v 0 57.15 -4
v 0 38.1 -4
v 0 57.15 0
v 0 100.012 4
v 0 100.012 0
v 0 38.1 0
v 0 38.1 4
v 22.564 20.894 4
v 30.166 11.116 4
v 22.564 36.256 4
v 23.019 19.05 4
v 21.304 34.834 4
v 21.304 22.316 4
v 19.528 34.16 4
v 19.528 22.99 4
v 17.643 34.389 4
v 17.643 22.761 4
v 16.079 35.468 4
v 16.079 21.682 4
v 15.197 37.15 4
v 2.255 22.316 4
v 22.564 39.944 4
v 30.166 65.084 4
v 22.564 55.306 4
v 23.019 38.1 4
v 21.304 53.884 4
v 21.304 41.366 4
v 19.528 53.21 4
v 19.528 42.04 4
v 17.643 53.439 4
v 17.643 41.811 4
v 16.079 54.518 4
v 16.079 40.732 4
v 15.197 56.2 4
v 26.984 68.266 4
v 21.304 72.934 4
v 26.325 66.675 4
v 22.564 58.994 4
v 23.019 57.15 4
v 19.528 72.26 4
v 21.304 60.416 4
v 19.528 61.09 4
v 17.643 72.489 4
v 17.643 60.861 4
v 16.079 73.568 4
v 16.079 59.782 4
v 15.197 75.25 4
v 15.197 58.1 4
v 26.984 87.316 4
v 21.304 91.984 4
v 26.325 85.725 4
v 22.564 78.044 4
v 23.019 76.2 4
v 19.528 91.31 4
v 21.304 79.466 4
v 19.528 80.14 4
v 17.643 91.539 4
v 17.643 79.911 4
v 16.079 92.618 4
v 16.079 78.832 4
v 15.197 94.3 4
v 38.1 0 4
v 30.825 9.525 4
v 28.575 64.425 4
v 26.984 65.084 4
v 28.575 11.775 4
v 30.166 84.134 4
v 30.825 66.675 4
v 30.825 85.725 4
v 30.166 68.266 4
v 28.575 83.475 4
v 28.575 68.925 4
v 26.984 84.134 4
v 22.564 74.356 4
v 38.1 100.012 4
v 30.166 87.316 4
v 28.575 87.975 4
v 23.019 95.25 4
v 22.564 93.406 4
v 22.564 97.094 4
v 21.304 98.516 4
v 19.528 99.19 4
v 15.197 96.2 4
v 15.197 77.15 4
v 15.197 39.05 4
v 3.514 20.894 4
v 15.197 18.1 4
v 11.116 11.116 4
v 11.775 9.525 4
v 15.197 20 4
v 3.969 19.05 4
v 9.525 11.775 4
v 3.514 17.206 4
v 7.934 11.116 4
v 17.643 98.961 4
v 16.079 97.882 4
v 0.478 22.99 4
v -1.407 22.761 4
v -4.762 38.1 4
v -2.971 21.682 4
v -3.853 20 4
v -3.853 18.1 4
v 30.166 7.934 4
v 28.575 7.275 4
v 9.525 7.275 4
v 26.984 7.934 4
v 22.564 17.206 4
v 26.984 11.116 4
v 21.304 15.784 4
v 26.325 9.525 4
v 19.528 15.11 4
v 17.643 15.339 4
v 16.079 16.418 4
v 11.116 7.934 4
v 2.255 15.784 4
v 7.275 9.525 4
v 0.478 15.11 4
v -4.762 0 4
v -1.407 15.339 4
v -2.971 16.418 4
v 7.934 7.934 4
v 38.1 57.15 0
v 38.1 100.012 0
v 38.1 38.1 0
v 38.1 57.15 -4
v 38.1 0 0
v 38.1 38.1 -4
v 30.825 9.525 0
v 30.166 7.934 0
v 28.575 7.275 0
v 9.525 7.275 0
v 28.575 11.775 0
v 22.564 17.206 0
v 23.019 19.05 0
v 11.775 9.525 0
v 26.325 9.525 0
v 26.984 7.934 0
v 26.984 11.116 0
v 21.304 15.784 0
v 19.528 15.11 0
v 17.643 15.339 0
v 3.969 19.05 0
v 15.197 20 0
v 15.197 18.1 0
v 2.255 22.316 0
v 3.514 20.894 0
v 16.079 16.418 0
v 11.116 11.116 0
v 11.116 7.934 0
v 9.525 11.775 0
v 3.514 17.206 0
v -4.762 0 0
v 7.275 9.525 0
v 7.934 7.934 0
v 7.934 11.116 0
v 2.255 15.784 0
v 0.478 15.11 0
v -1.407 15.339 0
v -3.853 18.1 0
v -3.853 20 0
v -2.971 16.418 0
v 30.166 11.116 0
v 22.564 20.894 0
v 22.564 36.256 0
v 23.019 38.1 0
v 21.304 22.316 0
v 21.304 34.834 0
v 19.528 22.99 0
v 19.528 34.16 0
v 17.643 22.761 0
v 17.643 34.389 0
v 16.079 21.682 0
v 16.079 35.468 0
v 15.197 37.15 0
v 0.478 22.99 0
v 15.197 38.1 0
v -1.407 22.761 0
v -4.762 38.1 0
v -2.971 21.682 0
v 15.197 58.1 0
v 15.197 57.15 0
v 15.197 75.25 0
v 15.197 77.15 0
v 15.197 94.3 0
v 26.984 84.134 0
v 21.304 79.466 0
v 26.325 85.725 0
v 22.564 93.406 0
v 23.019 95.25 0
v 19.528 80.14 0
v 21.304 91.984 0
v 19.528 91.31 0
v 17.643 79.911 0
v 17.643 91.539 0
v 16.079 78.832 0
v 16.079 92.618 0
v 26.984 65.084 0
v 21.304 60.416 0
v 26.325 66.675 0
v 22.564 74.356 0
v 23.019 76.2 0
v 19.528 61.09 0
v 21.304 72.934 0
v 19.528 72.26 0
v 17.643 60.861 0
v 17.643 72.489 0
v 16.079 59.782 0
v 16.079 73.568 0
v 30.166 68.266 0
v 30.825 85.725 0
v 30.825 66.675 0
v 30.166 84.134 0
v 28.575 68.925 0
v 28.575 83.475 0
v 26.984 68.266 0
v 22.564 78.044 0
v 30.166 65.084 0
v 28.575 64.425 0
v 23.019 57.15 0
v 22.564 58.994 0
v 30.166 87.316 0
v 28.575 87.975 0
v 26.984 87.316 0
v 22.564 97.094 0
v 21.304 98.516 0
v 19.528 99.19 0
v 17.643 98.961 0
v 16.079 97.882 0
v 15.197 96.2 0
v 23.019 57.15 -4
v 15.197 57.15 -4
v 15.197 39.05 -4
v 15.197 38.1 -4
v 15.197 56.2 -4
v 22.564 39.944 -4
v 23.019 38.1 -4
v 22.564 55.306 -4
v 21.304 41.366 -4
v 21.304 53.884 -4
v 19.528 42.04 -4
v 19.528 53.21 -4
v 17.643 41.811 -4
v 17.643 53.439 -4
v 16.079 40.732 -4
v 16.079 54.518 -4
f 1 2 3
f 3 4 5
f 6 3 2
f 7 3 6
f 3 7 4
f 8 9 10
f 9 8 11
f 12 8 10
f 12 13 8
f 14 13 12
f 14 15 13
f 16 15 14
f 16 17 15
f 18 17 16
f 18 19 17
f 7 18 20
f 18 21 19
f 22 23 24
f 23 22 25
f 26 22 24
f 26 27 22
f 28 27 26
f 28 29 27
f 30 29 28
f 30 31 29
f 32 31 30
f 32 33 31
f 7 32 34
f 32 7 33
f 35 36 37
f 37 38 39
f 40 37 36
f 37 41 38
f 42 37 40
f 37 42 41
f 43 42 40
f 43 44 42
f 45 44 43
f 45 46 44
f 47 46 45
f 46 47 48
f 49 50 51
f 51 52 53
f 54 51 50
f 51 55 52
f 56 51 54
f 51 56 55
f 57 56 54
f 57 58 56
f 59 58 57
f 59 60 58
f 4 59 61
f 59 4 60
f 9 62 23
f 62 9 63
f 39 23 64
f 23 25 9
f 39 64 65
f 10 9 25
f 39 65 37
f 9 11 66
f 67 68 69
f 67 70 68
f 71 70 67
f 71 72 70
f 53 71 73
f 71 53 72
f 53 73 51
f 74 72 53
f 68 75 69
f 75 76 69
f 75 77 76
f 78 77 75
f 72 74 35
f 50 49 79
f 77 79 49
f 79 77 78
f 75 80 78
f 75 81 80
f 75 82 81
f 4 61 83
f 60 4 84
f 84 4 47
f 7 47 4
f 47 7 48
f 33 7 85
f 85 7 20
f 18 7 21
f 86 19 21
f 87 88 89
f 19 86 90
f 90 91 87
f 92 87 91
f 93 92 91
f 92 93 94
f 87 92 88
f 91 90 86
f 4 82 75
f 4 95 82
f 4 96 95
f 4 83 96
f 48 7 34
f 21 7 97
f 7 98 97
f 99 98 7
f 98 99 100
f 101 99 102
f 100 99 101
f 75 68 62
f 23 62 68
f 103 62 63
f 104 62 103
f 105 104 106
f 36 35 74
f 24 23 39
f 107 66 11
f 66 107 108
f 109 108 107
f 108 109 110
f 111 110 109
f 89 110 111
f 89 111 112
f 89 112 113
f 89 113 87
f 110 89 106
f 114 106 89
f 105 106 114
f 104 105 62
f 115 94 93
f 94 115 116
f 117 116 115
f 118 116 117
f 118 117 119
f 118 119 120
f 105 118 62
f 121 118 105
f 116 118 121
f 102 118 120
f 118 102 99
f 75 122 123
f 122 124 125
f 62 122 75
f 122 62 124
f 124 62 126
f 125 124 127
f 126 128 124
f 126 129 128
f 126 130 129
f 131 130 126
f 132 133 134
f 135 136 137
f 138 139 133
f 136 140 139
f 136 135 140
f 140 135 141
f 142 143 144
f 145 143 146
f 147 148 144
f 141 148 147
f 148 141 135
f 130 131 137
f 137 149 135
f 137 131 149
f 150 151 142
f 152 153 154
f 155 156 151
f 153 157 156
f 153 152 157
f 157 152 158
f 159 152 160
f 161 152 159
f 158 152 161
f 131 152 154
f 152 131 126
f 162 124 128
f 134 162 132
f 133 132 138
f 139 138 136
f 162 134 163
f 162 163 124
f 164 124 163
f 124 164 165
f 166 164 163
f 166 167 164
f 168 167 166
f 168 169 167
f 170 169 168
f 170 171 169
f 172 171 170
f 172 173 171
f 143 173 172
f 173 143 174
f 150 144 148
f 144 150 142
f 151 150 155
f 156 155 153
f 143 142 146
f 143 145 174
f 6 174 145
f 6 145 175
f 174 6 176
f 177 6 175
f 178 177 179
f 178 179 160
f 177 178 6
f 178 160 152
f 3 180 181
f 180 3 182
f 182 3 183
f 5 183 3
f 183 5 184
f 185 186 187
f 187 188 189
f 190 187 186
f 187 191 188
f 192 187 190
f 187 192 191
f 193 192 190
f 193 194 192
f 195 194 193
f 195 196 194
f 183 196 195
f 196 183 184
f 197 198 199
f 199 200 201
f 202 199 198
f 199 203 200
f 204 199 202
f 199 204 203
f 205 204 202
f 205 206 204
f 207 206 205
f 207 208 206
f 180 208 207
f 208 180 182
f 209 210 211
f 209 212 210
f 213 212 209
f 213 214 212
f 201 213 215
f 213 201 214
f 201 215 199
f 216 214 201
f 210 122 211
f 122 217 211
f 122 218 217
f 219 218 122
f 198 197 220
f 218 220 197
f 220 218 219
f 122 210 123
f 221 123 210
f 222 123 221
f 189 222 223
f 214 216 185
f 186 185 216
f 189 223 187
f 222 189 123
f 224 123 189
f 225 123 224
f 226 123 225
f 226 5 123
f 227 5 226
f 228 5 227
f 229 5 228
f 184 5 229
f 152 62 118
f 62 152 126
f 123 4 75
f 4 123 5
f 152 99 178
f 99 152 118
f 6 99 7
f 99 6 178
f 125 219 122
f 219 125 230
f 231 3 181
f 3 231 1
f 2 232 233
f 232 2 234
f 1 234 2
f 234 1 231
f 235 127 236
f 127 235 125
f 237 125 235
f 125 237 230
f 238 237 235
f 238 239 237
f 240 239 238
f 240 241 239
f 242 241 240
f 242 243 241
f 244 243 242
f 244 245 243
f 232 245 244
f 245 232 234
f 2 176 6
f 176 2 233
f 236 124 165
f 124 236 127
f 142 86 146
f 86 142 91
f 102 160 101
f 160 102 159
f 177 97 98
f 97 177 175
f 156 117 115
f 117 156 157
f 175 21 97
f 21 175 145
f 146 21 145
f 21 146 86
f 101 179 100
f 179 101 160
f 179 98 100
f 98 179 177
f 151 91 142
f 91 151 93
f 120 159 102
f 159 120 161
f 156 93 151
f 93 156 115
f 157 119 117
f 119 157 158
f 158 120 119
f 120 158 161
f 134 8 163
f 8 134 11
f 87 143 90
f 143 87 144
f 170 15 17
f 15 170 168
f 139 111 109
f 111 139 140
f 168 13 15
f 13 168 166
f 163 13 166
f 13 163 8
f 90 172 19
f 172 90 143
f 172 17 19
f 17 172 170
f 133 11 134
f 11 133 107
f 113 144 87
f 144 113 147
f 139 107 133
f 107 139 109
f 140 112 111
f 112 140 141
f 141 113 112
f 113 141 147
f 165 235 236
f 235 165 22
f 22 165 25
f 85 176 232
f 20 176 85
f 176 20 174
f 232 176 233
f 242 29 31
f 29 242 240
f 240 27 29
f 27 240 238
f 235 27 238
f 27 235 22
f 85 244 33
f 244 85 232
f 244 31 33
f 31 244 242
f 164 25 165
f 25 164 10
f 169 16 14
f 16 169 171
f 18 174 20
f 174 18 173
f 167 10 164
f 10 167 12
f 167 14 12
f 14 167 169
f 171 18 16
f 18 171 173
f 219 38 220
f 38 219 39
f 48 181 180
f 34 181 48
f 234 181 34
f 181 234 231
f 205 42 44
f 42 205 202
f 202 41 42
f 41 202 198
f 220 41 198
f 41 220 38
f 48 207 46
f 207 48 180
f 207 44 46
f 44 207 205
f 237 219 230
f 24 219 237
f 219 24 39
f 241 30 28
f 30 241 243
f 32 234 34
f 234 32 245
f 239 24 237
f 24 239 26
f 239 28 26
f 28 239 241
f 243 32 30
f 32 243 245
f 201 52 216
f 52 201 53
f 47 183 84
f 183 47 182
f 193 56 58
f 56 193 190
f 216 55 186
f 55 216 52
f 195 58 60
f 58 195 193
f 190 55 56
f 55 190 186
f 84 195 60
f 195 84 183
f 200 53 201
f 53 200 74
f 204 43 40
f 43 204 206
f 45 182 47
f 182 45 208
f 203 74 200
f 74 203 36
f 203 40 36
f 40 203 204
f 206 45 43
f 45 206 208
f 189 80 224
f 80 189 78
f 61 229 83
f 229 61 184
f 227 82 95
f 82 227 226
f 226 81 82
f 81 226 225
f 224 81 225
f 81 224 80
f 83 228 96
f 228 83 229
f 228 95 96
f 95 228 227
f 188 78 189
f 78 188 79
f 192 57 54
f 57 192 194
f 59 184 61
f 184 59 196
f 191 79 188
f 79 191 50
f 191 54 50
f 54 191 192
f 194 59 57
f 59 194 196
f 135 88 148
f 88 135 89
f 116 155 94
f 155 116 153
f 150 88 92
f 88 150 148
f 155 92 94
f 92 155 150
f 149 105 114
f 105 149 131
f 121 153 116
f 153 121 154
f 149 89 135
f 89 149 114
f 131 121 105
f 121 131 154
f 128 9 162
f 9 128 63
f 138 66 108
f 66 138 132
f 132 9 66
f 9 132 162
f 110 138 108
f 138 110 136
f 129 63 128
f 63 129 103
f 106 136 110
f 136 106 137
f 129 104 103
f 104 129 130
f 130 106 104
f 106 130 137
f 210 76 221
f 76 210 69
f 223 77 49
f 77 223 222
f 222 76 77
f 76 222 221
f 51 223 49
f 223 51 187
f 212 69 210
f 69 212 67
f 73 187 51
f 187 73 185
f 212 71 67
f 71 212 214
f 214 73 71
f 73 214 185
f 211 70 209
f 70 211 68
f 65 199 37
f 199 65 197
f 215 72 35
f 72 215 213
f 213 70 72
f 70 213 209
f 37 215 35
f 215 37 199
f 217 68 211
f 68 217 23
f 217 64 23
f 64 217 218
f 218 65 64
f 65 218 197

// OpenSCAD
// file: constants.scad
thickness = 8;
holeDiameter = 7.9375;
holeDistance = 19.05;
length = 152.4 - holeDistance;
width = holeDistance * 2;
straightPlankLength = 4.5 * holeDistance;
screwHoleDiameter = 4.5;
// main file
include <constants.scad>;

makeCornerConnector();

module makeCornerConnector() {
    difference() {
        union() {
            color("blue")
            cube([width, 5.25 * holeDistance, thickness / 2]);
        

            color("green")
            translate([-holeDistance * 0.25, 0, 0])
            cube([holeDistance * 2.25, width, thickness / 2]);
            
            color("orange")
            translate([0, width, -thickness / 2])
            cube([width, holeDistance, thickness]);
        }
        
        color("green")
        union() {
            translate([0, holeDistance, -thickness])
            cylinder(d=holeDiameter, h=thickness * 2);
            translate([holeDistance, holeDistance, -thickness])
            cylinder(d=holeDiameter, h=thickness * 2);
            translate([holeDistance, holeDistance * 2, -thickness])
            cylinder(d=holeDiameter, h=thickness * 2);
            translate([holeDistance, holeDistance * 3, -thickness])
            cylinder(d=holeDiameter, h=thickness * 2);
            translate([holeDistance, holeDistance * 4, -thickness])
            cylinder(d=holeDiameter, h=thickness * 2);
            translate([holeDistance, holeDistance * 5, -thickness])
            cylinder(d=holeDiameter, h=thickness * 2);
        }
        
        color("black")
        translate([holeDistance * 0.5, holeDistance * 0.5, -thickness])
        cylinder(d=screwHoleDiameter, h=thickness * 3);
        color("black")
        translate([holeDistance * 1.5, holeDistance * 0.5, -thickness])
        cylinder(d=screwHoleDiameter, h=thickness * 3);
        color("black")
        translate([holeDistance * 1.5, holeDistance * 4.5, -thickness])
        cylinder(d=screwHoleDiameter, h=thickness * 3);
        color("black")
        translate([holeDistance * 1.5, holeDistance * 3.5, -thickness])
        cylinder(d=screwHoleDiameter, h=thickness * 3);
    }    
}
